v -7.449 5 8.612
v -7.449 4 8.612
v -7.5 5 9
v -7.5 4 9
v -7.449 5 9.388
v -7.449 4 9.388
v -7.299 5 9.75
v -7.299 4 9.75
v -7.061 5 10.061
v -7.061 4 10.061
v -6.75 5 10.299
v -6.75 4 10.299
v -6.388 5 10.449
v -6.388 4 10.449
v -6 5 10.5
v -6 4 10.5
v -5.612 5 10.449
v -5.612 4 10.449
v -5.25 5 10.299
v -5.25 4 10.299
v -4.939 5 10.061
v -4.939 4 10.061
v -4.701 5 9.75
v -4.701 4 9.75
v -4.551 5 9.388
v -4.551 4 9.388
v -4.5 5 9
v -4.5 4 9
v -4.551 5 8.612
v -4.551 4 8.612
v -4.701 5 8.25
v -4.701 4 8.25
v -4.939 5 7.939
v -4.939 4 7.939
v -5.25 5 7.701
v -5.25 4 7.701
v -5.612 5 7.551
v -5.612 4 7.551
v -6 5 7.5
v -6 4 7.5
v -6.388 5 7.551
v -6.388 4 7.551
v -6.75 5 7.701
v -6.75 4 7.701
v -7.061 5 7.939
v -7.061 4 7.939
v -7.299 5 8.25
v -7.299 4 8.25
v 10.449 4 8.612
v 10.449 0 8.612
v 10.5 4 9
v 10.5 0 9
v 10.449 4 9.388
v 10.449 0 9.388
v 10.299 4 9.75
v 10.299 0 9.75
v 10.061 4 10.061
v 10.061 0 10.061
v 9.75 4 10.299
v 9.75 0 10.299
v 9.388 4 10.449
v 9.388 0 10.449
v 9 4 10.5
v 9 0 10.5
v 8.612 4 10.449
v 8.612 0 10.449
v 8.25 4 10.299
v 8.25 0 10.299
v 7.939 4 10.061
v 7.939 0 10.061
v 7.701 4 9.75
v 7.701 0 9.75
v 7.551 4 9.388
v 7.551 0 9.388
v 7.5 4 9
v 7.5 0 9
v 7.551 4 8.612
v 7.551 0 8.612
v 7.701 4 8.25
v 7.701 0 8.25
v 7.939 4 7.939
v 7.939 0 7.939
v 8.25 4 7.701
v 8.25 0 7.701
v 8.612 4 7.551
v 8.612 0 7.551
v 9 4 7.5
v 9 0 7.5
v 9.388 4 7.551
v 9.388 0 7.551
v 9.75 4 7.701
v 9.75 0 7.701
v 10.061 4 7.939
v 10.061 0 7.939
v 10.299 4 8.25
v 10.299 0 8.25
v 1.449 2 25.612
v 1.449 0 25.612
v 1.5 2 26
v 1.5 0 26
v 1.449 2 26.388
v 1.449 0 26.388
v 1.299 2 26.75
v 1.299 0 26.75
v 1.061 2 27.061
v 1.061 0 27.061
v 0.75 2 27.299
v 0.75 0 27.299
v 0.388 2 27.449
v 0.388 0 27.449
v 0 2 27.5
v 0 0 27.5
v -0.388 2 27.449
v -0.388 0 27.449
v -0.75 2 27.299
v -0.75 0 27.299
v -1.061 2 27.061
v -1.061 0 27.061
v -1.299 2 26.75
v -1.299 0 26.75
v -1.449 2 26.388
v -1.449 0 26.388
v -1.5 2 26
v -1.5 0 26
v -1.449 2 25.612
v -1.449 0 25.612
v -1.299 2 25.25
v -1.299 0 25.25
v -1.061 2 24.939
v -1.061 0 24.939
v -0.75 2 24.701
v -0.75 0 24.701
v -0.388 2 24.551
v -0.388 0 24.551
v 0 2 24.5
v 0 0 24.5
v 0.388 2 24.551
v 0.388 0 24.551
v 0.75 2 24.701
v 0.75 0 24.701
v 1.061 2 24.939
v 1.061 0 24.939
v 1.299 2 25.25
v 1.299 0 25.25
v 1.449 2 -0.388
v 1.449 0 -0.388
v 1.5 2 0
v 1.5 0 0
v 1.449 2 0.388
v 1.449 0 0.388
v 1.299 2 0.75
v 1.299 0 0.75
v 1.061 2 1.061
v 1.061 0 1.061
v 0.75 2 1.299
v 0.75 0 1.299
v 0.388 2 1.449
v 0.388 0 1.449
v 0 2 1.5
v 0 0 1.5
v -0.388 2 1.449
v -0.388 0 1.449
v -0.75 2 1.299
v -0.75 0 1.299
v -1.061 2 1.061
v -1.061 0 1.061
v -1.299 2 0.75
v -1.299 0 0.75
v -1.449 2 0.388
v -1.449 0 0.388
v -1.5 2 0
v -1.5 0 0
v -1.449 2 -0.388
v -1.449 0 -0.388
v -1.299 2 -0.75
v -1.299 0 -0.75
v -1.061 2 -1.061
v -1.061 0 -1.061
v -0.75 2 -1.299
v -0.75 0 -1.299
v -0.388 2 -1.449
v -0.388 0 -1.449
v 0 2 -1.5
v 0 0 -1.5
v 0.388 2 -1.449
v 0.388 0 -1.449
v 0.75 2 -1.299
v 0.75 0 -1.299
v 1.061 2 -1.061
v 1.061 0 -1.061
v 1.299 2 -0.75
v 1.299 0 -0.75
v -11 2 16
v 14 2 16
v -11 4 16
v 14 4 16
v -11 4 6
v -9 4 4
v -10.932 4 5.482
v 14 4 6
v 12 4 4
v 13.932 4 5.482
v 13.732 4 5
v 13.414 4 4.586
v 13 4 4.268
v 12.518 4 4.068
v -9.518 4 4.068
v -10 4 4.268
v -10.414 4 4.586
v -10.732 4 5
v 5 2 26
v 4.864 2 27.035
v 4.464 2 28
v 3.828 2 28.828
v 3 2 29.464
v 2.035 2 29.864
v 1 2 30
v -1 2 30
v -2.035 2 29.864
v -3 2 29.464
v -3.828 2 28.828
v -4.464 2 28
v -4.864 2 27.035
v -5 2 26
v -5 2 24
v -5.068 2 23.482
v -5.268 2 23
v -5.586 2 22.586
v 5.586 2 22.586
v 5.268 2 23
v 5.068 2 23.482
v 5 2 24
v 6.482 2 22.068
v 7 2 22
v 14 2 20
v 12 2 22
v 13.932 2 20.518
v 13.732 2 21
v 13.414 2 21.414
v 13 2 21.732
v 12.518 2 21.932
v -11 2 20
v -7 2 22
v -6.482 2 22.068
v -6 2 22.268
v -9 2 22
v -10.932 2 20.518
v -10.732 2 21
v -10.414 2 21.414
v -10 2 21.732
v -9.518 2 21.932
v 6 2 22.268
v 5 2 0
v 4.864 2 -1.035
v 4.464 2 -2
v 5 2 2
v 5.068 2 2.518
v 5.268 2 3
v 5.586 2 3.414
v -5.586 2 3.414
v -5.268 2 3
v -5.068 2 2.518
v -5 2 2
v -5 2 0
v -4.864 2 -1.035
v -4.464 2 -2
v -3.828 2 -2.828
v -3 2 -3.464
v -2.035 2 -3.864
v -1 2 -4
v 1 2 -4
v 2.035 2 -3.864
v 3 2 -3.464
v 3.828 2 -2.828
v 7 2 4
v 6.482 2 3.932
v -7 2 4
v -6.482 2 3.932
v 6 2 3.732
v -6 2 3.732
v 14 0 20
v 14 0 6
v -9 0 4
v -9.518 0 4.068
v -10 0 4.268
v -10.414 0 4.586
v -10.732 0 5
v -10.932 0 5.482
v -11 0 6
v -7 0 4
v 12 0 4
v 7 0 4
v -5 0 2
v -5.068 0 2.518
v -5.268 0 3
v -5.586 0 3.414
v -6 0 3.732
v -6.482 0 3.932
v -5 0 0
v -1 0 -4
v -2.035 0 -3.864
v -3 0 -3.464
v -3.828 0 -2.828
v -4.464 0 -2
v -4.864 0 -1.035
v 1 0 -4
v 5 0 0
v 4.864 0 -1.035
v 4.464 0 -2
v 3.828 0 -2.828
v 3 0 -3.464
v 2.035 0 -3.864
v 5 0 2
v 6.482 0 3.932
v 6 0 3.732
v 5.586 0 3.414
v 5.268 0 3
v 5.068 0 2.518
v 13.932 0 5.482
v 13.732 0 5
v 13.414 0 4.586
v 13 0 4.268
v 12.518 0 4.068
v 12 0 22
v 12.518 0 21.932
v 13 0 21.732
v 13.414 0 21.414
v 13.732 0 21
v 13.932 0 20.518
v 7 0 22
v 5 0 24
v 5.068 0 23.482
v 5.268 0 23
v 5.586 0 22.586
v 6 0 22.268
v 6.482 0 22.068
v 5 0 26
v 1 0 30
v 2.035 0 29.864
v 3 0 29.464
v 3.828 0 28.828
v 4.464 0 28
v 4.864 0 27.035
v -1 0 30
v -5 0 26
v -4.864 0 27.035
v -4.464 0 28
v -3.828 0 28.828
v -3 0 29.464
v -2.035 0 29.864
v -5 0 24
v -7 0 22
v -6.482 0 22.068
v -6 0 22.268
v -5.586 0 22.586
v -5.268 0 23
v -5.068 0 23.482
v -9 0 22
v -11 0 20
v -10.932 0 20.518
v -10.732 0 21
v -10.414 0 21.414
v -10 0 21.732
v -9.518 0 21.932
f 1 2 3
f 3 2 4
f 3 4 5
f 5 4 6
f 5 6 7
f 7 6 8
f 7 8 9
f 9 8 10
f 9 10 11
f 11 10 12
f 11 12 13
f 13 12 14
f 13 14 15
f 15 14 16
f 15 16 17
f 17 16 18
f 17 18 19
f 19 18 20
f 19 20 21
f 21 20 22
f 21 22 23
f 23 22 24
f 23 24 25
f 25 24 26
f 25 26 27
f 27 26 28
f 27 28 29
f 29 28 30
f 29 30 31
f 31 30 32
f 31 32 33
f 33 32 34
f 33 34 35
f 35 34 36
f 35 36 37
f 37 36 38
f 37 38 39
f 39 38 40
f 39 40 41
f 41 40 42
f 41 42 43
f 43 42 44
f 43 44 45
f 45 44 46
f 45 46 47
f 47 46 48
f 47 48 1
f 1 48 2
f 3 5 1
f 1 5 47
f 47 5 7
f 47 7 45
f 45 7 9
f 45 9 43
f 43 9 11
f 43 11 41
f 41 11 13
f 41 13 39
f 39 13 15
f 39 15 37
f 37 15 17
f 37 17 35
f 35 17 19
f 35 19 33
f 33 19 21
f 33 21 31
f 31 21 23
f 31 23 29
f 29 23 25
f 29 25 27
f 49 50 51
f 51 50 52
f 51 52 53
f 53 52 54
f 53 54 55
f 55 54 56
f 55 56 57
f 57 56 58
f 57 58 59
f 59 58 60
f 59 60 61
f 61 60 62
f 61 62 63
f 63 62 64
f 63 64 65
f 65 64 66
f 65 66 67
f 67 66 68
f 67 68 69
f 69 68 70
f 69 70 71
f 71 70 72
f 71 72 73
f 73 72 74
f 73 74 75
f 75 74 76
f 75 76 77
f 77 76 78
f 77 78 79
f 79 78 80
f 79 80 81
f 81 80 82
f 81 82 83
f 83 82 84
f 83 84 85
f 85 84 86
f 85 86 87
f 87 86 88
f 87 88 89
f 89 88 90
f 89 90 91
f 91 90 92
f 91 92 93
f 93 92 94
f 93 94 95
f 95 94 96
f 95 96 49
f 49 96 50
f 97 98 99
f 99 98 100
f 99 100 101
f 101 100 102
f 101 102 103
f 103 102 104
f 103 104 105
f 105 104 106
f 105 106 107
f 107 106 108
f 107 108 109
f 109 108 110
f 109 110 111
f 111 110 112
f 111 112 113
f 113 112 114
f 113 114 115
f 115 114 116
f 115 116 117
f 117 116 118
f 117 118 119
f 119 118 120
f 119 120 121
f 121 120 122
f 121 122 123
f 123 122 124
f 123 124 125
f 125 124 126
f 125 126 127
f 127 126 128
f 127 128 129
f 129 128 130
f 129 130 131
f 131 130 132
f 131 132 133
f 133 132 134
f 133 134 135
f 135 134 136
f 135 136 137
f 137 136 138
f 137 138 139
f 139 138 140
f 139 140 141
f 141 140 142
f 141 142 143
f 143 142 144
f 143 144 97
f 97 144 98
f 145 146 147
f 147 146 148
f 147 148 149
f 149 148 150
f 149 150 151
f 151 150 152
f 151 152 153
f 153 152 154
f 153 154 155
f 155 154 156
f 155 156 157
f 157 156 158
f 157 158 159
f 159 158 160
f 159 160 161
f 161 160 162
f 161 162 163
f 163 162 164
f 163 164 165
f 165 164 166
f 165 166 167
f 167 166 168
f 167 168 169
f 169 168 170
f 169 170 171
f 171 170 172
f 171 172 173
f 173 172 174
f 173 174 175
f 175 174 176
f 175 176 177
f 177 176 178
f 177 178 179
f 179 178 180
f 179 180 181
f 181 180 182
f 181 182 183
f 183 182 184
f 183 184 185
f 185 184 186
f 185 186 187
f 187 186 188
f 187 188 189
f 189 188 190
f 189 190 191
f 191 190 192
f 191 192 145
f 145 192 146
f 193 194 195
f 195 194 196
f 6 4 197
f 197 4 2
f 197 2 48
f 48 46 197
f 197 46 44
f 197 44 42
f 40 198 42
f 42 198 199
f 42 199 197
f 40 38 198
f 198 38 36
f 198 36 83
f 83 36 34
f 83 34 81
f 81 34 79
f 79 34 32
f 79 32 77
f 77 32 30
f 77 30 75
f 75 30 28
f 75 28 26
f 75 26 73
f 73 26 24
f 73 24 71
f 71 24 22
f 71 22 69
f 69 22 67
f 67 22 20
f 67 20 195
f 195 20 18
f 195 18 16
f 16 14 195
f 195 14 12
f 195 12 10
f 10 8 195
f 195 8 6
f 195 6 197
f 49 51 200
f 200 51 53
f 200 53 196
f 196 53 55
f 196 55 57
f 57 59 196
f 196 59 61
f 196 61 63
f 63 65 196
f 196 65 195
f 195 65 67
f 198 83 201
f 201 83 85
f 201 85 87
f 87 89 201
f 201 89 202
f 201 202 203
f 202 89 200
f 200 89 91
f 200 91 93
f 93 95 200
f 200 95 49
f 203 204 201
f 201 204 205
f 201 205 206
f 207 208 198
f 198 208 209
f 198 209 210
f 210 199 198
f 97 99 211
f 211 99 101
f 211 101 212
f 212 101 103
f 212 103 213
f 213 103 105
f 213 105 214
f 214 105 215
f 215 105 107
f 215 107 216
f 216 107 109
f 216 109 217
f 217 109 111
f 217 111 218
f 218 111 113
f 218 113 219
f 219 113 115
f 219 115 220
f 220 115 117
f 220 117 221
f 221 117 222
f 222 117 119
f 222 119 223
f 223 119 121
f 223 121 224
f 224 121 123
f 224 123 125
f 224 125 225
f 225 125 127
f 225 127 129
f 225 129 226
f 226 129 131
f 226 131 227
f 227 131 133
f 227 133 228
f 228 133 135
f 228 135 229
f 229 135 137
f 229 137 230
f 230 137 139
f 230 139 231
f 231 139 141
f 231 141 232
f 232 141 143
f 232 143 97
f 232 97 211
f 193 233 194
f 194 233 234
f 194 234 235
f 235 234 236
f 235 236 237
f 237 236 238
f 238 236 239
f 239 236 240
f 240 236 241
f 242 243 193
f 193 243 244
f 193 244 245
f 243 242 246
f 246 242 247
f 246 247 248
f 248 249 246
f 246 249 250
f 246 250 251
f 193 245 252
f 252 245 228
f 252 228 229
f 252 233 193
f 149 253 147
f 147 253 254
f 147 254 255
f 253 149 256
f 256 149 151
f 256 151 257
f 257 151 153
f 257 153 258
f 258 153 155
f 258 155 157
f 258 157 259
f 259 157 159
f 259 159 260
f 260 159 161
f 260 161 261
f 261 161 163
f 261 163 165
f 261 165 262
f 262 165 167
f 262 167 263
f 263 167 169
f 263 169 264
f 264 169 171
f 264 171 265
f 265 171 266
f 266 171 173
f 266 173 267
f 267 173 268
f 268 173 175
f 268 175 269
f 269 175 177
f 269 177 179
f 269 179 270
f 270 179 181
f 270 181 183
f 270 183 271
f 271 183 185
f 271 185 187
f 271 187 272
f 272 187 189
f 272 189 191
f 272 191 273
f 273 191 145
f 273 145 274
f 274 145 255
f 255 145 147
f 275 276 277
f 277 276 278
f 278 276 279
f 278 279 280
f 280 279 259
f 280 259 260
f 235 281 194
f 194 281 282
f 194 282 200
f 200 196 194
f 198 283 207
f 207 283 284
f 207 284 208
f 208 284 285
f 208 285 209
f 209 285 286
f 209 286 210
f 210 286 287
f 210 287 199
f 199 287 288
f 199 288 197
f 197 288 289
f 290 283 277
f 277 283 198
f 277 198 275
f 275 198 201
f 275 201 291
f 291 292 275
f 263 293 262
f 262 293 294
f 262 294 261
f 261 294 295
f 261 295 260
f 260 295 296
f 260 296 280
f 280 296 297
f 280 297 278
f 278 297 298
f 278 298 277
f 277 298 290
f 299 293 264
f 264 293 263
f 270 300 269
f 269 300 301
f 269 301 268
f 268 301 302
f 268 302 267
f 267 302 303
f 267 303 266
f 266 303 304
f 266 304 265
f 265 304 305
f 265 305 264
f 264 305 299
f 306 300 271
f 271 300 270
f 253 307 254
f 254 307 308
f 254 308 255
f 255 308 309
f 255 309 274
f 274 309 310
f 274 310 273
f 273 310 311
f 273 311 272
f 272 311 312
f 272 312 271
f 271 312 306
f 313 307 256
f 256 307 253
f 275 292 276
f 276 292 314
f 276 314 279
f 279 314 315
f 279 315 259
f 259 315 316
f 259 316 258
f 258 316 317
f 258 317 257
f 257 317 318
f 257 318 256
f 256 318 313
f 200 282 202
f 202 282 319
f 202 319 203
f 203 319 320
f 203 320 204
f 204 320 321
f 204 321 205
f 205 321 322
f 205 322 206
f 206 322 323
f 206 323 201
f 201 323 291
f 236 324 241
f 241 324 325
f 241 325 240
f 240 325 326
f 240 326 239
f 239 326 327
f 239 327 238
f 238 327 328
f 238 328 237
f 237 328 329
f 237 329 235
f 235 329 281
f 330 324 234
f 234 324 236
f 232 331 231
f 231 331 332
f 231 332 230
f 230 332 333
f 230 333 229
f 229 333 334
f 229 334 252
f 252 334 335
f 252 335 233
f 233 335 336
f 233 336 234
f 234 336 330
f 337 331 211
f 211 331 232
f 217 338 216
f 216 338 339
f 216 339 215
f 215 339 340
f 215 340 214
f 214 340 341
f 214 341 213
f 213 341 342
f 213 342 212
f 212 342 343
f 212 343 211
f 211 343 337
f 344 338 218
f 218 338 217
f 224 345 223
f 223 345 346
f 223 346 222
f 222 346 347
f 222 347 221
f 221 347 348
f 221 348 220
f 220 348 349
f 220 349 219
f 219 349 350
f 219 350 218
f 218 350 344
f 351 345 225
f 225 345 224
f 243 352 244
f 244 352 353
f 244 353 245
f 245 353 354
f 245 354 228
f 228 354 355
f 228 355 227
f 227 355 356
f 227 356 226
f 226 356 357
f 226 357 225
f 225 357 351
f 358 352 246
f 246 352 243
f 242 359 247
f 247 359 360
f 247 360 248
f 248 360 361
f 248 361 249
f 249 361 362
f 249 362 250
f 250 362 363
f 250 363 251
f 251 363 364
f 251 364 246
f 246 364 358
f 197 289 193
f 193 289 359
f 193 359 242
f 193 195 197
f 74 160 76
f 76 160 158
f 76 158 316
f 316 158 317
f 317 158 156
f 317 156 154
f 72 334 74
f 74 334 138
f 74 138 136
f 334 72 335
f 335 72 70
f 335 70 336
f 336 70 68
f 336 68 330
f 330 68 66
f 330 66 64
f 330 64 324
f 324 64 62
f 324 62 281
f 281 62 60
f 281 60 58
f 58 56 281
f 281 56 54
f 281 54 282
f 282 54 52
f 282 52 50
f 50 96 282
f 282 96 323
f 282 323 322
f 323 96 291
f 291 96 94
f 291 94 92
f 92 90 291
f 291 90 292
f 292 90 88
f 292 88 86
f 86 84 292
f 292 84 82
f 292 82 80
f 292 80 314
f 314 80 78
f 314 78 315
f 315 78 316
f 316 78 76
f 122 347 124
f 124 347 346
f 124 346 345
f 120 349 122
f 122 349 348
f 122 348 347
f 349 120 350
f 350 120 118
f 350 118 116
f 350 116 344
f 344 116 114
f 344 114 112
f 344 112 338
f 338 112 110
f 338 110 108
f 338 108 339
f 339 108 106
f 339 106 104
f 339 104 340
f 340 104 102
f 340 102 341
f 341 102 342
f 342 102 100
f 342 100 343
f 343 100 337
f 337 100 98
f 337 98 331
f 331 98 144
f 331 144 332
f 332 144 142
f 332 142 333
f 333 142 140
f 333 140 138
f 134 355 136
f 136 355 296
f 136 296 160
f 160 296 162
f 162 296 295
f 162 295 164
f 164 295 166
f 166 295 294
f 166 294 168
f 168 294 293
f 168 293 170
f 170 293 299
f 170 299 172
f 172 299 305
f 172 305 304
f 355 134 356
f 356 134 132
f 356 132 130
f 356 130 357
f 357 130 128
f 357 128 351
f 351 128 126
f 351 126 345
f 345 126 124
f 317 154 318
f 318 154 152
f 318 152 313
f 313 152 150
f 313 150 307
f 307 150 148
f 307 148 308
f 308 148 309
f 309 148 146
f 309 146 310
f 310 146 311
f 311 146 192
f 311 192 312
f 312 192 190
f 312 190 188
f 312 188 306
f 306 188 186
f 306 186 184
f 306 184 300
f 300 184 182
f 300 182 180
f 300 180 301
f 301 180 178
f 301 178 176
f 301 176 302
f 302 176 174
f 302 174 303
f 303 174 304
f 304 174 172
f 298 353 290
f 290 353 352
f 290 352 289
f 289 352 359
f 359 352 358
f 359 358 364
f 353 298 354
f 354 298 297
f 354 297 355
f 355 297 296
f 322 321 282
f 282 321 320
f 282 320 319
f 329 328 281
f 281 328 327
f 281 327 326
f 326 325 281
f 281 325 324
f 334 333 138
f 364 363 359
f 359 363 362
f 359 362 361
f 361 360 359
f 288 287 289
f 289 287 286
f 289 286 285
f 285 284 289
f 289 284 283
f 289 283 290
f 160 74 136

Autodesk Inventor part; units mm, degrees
ref_plane "YZ Plane" through (0, 0, 0) normal (1, 0, 0) x (0, 1, 0)
ref_plane "XZ Plane" through (0, 0, 0) normal (0, 1, 0) x (-1, 0, 0)
ref_plane "XY Plane" through (0, 0, 0) normal (0, 0, 1) x (1, 0, 0)
sketch "Sketch1" plane through (0, 0, 0) normal (0, 1, 0) x (-1, 0, 0)
  line L0 (0, 26) -> (0, 0)
  line L1 (0, 9) -> (6, 9)
  line L2 (6, 9) -> (-9, 9)
  line L3 (11, 6) -> (11, 16)
  line L4 (-14, 16) -> (-14, 6)
  line L5 (1, 30) -> (-1, 30)
  line L6 (-1, -4) -> (1, -4)
  arc A0 (5, 26) -> (1, 30) centre (1, 26) ccw
  arc A1 (-1, 30) -> (-5, 26) centre (-1, 26) ccw
  arc A2 (1, -4) -> (5, 0) centre (1, 0) ccw
  arc A3 (-5, 0) -> (-1, -4) centre (-1, 0) ccw
  line L7 (7, 22) -> (9, 22)
  line L8 (9, 4) -> (7, 4)
  line L9 (-12, 4) -> (-7, 4)
  line L10 (-7, 22) -> (-12, 22)
  line L11 (-14, 20) -> (-14, 16)
  line L12 (-5, 24) -> (-5, 26)
  line L13 (-5, 2) -> (-5, 0)
  arc A4 (-7, 22) -> (-5, 24) centre (-7, 24) ccw
  arc A5 (-12, 22) -> (-14, 20) centre (-12, 20) ccw
  arc A6 (-14, 6) -> (-12, 4) centre (-12, 6) ccw
  arc A7 (-5, 2) -> (-7, 4) centre (-7, 2) ccw
  line L14 (5, 26) -> (5, 24)
  line L15 (5, 2) -> (5, 0)
  arc A8 (5, 24) -> (7, 22) centre (7, 24) ccw
  arc A9 (11, 20) -> (9, 22) centre (9, 20) ccw
  arc A10 (9, 4) -> (11, 6) centre (9, 6) ccw
  arc A11 (7, 4) -> (5, 2) centre (7, 2) ccw
  line L16 (11, 16) -> (11, 20)
  line L17 (11, 16) -> (-14, 16)
  line L18 (9, 4) -> (-12, 4)
  circle A12 centre (6, 9) radius 1.5
  point P0 (0, 0)
  point P1 (-14, 4)
  point P2 (5, 22)
  point P3 (11, 22)
  point P4 (5, 4)
  dimension "d9" = 6
  dimension "d10" = 26
  dimension "d11" = 9
  dimension "d12" = 15
  dimension "d13" = 5
  dimension "d14" = 5
  dimension "d17" = 4
  dimension "d18" = 4
  dimension "d20" = 4
  dimension "d21" = 4
  dimension "d22" = 4
  dimension "d23" = 4
  dimension "d25" = 5
  dimension "d26" = 5
  dimension "d27" = 18
  dimension "d28" = 1
  dimension "d29" = 2
  dimension "d30" = 6
  dimension "d31" = 1
  dimension "d32" = 6
  dimension "d34" = 4
  dimension "d35" = 2
  dimension "d37" = 10
  dimension "d38" = 6
  dimension "d39" = 2
  dimension "d54" = 3
extrude "Extrusion1" add sketch "Sketch1" along normal blind 2 contours A12 | L17 L3 A10 L8 L18 L0 | L17 L11 A5 L10 A4 L12 A1 L5 A0 L14 A8 L7 A9 L16 | L0 L18 L9 A6 L4 L17 | L18 A11 L15 A2 L6 A3 L13 A7
extrude "Extrusion2" add sketch "Sketch1" along normal blind 4 contours A12 | L17 L3 A10 L8 L18 L0 | L0 L18 L9 A6 L4 L17
hole "Hole1" at (0, 0, 26) at (9, 0, 9) at (0, 0, 0) direction (0, 1, 0) diameter 3 depth 8 tip angle 118
extrude "Extrusion4" add sketch "Sketch1" along normal blind 5 contours A12
properties part number "imu_MPU6050Holder_V2"
